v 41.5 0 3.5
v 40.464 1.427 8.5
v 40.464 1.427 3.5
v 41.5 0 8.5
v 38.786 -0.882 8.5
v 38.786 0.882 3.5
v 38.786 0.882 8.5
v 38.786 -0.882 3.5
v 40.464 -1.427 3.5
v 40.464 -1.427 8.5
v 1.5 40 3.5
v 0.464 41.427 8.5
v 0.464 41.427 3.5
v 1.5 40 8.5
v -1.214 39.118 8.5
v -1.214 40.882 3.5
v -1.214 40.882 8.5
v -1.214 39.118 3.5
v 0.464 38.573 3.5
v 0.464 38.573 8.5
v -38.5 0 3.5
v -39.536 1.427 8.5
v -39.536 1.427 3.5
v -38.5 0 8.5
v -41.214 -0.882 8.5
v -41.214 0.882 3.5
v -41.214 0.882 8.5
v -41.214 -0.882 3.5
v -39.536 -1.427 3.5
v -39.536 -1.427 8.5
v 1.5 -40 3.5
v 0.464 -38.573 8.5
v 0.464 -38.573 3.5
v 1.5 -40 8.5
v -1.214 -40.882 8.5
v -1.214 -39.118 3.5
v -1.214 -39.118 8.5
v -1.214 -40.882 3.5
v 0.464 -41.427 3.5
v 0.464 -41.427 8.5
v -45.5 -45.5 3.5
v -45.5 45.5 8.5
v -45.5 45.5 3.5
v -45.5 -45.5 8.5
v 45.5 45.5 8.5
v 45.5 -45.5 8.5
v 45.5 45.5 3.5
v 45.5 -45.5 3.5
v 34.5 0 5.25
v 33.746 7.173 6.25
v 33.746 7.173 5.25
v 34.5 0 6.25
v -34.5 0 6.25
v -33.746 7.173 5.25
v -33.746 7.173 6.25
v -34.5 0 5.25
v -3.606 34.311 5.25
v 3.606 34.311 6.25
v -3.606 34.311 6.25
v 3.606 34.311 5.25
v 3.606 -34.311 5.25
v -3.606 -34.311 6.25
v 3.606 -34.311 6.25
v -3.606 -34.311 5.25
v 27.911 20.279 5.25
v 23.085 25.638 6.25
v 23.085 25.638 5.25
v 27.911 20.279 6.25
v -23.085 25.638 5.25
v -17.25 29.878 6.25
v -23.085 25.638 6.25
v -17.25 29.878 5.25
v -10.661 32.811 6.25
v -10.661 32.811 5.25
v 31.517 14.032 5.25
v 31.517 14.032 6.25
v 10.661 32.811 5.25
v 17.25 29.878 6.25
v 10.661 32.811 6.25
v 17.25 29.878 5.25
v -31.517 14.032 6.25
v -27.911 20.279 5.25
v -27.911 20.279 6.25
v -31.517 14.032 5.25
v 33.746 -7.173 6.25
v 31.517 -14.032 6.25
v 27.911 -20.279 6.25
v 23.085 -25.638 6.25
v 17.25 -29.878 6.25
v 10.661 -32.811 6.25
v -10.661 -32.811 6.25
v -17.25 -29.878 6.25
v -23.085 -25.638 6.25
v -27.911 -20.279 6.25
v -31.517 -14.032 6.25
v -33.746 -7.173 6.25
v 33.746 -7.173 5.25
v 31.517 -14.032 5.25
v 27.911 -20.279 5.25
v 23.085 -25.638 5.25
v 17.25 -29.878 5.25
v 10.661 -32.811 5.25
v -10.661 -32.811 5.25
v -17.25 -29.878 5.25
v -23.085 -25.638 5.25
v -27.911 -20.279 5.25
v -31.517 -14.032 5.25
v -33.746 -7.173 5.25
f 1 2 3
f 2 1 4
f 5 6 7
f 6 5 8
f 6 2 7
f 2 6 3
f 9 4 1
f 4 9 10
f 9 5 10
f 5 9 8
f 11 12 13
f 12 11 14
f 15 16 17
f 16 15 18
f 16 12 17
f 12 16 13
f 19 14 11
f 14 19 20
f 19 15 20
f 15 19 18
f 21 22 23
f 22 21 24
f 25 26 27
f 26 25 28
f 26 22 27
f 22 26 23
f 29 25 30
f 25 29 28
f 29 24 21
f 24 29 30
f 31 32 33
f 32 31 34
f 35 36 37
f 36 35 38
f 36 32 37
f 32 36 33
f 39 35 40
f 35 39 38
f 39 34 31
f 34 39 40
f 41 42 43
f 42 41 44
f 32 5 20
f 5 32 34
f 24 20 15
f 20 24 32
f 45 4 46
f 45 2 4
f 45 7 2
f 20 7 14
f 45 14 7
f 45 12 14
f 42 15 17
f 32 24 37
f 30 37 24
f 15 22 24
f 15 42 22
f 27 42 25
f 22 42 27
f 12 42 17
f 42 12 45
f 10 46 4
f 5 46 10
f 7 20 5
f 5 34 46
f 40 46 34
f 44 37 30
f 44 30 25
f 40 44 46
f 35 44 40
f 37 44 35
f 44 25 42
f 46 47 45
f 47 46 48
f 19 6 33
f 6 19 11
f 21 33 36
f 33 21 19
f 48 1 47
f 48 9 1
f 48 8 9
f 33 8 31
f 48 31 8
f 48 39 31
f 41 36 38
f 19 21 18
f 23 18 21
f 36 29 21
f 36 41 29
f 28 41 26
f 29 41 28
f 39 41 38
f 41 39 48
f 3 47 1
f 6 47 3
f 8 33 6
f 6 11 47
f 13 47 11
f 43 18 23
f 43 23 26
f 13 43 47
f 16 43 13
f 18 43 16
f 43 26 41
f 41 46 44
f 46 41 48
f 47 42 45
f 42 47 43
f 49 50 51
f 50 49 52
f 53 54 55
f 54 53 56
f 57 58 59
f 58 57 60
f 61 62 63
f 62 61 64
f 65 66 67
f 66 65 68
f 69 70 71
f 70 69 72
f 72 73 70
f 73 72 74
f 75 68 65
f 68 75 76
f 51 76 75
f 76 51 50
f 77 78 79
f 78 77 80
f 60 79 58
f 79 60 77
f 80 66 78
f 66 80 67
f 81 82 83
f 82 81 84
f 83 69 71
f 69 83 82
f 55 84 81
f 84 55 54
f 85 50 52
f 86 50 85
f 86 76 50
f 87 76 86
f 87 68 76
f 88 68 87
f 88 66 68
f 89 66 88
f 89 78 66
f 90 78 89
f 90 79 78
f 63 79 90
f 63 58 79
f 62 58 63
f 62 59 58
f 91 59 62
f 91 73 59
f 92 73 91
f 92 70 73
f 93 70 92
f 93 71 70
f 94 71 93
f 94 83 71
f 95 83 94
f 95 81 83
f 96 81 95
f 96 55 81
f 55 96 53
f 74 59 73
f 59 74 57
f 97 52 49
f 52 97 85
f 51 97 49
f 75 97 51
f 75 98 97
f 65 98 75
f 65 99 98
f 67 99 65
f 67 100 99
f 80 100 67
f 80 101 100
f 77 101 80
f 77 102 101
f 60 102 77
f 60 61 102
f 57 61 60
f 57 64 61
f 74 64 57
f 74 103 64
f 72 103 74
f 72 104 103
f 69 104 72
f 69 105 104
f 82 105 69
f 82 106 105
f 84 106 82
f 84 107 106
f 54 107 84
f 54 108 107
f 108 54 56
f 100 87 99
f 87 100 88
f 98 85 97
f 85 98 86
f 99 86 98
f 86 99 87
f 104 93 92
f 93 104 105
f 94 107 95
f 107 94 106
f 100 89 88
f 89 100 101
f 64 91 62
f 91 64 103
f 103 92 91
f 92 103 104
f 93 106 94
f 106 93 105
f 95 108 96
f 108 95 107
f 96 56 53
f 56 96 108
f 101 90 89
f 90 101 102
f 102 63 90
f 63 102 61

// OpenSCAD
// Famicom Disk Cutting Jig (2.8" disk)
// All dimensions in millimeters

disk_diameter = 71;
hub_hole_diameter = 11;
jig_thickness = 5;
jig_border = 10;
alignment_hole_diameter = 3;
alignment_hole_offset = 40;

// Lower half of the jig
module lower_jig() {
    difference() {
        // Outer block
        cube([disk_diameter + 2 * jig_border, disk_diameter + 2 * jig_border, jig_thickness], center=true);
        
        // Circular cutout for disk
        translate([0, 0, 0.5])
            cylinder(h = jig_thickness + 1, d = disk_diameter, center=true);
        
        // Center hole for hub
        translate([0, 0, 0.5])
            cylinder(h = jig_thickness + 1, d = hub_hole_diameter, center=true);

        // Peg alignment holes
        for (angle = [0, 90, 180, 270]) {
            translate([alignment_hole_offset * cos(angle), alignment_hole_offset * sin(angle), 0])
                cylinder(h = jig_thickness + 1, d = alignment_hole_diameter, center=true);
        }
    }
}

// Upper half (presses down, with holes for pegs)
module upper_jig() {
    difference() {
        cube([disk_diameter + 2 * jig_border, disk_diameter + 2 * jig_border, jig_thickness], center=true);

        // Optional shallow recess to prevent slipping
        translate([0, 0, -0.25])
            cylinder(h = 1, d = disk_diameter - 2, center=true);

        // Alignment peg holes
        for (angle = [0, 90, 180, 270]) {
            translate([alignment_hole_offset * cos(angle), alignment_hole_offset * sin(angle), 0])
                cylinder(h = jig_thickness + 1, d = alignment_hole_diameter, center=true);
        }
    }
}

translate([0, 0, jig_thickness + 1]) upper_jig();
